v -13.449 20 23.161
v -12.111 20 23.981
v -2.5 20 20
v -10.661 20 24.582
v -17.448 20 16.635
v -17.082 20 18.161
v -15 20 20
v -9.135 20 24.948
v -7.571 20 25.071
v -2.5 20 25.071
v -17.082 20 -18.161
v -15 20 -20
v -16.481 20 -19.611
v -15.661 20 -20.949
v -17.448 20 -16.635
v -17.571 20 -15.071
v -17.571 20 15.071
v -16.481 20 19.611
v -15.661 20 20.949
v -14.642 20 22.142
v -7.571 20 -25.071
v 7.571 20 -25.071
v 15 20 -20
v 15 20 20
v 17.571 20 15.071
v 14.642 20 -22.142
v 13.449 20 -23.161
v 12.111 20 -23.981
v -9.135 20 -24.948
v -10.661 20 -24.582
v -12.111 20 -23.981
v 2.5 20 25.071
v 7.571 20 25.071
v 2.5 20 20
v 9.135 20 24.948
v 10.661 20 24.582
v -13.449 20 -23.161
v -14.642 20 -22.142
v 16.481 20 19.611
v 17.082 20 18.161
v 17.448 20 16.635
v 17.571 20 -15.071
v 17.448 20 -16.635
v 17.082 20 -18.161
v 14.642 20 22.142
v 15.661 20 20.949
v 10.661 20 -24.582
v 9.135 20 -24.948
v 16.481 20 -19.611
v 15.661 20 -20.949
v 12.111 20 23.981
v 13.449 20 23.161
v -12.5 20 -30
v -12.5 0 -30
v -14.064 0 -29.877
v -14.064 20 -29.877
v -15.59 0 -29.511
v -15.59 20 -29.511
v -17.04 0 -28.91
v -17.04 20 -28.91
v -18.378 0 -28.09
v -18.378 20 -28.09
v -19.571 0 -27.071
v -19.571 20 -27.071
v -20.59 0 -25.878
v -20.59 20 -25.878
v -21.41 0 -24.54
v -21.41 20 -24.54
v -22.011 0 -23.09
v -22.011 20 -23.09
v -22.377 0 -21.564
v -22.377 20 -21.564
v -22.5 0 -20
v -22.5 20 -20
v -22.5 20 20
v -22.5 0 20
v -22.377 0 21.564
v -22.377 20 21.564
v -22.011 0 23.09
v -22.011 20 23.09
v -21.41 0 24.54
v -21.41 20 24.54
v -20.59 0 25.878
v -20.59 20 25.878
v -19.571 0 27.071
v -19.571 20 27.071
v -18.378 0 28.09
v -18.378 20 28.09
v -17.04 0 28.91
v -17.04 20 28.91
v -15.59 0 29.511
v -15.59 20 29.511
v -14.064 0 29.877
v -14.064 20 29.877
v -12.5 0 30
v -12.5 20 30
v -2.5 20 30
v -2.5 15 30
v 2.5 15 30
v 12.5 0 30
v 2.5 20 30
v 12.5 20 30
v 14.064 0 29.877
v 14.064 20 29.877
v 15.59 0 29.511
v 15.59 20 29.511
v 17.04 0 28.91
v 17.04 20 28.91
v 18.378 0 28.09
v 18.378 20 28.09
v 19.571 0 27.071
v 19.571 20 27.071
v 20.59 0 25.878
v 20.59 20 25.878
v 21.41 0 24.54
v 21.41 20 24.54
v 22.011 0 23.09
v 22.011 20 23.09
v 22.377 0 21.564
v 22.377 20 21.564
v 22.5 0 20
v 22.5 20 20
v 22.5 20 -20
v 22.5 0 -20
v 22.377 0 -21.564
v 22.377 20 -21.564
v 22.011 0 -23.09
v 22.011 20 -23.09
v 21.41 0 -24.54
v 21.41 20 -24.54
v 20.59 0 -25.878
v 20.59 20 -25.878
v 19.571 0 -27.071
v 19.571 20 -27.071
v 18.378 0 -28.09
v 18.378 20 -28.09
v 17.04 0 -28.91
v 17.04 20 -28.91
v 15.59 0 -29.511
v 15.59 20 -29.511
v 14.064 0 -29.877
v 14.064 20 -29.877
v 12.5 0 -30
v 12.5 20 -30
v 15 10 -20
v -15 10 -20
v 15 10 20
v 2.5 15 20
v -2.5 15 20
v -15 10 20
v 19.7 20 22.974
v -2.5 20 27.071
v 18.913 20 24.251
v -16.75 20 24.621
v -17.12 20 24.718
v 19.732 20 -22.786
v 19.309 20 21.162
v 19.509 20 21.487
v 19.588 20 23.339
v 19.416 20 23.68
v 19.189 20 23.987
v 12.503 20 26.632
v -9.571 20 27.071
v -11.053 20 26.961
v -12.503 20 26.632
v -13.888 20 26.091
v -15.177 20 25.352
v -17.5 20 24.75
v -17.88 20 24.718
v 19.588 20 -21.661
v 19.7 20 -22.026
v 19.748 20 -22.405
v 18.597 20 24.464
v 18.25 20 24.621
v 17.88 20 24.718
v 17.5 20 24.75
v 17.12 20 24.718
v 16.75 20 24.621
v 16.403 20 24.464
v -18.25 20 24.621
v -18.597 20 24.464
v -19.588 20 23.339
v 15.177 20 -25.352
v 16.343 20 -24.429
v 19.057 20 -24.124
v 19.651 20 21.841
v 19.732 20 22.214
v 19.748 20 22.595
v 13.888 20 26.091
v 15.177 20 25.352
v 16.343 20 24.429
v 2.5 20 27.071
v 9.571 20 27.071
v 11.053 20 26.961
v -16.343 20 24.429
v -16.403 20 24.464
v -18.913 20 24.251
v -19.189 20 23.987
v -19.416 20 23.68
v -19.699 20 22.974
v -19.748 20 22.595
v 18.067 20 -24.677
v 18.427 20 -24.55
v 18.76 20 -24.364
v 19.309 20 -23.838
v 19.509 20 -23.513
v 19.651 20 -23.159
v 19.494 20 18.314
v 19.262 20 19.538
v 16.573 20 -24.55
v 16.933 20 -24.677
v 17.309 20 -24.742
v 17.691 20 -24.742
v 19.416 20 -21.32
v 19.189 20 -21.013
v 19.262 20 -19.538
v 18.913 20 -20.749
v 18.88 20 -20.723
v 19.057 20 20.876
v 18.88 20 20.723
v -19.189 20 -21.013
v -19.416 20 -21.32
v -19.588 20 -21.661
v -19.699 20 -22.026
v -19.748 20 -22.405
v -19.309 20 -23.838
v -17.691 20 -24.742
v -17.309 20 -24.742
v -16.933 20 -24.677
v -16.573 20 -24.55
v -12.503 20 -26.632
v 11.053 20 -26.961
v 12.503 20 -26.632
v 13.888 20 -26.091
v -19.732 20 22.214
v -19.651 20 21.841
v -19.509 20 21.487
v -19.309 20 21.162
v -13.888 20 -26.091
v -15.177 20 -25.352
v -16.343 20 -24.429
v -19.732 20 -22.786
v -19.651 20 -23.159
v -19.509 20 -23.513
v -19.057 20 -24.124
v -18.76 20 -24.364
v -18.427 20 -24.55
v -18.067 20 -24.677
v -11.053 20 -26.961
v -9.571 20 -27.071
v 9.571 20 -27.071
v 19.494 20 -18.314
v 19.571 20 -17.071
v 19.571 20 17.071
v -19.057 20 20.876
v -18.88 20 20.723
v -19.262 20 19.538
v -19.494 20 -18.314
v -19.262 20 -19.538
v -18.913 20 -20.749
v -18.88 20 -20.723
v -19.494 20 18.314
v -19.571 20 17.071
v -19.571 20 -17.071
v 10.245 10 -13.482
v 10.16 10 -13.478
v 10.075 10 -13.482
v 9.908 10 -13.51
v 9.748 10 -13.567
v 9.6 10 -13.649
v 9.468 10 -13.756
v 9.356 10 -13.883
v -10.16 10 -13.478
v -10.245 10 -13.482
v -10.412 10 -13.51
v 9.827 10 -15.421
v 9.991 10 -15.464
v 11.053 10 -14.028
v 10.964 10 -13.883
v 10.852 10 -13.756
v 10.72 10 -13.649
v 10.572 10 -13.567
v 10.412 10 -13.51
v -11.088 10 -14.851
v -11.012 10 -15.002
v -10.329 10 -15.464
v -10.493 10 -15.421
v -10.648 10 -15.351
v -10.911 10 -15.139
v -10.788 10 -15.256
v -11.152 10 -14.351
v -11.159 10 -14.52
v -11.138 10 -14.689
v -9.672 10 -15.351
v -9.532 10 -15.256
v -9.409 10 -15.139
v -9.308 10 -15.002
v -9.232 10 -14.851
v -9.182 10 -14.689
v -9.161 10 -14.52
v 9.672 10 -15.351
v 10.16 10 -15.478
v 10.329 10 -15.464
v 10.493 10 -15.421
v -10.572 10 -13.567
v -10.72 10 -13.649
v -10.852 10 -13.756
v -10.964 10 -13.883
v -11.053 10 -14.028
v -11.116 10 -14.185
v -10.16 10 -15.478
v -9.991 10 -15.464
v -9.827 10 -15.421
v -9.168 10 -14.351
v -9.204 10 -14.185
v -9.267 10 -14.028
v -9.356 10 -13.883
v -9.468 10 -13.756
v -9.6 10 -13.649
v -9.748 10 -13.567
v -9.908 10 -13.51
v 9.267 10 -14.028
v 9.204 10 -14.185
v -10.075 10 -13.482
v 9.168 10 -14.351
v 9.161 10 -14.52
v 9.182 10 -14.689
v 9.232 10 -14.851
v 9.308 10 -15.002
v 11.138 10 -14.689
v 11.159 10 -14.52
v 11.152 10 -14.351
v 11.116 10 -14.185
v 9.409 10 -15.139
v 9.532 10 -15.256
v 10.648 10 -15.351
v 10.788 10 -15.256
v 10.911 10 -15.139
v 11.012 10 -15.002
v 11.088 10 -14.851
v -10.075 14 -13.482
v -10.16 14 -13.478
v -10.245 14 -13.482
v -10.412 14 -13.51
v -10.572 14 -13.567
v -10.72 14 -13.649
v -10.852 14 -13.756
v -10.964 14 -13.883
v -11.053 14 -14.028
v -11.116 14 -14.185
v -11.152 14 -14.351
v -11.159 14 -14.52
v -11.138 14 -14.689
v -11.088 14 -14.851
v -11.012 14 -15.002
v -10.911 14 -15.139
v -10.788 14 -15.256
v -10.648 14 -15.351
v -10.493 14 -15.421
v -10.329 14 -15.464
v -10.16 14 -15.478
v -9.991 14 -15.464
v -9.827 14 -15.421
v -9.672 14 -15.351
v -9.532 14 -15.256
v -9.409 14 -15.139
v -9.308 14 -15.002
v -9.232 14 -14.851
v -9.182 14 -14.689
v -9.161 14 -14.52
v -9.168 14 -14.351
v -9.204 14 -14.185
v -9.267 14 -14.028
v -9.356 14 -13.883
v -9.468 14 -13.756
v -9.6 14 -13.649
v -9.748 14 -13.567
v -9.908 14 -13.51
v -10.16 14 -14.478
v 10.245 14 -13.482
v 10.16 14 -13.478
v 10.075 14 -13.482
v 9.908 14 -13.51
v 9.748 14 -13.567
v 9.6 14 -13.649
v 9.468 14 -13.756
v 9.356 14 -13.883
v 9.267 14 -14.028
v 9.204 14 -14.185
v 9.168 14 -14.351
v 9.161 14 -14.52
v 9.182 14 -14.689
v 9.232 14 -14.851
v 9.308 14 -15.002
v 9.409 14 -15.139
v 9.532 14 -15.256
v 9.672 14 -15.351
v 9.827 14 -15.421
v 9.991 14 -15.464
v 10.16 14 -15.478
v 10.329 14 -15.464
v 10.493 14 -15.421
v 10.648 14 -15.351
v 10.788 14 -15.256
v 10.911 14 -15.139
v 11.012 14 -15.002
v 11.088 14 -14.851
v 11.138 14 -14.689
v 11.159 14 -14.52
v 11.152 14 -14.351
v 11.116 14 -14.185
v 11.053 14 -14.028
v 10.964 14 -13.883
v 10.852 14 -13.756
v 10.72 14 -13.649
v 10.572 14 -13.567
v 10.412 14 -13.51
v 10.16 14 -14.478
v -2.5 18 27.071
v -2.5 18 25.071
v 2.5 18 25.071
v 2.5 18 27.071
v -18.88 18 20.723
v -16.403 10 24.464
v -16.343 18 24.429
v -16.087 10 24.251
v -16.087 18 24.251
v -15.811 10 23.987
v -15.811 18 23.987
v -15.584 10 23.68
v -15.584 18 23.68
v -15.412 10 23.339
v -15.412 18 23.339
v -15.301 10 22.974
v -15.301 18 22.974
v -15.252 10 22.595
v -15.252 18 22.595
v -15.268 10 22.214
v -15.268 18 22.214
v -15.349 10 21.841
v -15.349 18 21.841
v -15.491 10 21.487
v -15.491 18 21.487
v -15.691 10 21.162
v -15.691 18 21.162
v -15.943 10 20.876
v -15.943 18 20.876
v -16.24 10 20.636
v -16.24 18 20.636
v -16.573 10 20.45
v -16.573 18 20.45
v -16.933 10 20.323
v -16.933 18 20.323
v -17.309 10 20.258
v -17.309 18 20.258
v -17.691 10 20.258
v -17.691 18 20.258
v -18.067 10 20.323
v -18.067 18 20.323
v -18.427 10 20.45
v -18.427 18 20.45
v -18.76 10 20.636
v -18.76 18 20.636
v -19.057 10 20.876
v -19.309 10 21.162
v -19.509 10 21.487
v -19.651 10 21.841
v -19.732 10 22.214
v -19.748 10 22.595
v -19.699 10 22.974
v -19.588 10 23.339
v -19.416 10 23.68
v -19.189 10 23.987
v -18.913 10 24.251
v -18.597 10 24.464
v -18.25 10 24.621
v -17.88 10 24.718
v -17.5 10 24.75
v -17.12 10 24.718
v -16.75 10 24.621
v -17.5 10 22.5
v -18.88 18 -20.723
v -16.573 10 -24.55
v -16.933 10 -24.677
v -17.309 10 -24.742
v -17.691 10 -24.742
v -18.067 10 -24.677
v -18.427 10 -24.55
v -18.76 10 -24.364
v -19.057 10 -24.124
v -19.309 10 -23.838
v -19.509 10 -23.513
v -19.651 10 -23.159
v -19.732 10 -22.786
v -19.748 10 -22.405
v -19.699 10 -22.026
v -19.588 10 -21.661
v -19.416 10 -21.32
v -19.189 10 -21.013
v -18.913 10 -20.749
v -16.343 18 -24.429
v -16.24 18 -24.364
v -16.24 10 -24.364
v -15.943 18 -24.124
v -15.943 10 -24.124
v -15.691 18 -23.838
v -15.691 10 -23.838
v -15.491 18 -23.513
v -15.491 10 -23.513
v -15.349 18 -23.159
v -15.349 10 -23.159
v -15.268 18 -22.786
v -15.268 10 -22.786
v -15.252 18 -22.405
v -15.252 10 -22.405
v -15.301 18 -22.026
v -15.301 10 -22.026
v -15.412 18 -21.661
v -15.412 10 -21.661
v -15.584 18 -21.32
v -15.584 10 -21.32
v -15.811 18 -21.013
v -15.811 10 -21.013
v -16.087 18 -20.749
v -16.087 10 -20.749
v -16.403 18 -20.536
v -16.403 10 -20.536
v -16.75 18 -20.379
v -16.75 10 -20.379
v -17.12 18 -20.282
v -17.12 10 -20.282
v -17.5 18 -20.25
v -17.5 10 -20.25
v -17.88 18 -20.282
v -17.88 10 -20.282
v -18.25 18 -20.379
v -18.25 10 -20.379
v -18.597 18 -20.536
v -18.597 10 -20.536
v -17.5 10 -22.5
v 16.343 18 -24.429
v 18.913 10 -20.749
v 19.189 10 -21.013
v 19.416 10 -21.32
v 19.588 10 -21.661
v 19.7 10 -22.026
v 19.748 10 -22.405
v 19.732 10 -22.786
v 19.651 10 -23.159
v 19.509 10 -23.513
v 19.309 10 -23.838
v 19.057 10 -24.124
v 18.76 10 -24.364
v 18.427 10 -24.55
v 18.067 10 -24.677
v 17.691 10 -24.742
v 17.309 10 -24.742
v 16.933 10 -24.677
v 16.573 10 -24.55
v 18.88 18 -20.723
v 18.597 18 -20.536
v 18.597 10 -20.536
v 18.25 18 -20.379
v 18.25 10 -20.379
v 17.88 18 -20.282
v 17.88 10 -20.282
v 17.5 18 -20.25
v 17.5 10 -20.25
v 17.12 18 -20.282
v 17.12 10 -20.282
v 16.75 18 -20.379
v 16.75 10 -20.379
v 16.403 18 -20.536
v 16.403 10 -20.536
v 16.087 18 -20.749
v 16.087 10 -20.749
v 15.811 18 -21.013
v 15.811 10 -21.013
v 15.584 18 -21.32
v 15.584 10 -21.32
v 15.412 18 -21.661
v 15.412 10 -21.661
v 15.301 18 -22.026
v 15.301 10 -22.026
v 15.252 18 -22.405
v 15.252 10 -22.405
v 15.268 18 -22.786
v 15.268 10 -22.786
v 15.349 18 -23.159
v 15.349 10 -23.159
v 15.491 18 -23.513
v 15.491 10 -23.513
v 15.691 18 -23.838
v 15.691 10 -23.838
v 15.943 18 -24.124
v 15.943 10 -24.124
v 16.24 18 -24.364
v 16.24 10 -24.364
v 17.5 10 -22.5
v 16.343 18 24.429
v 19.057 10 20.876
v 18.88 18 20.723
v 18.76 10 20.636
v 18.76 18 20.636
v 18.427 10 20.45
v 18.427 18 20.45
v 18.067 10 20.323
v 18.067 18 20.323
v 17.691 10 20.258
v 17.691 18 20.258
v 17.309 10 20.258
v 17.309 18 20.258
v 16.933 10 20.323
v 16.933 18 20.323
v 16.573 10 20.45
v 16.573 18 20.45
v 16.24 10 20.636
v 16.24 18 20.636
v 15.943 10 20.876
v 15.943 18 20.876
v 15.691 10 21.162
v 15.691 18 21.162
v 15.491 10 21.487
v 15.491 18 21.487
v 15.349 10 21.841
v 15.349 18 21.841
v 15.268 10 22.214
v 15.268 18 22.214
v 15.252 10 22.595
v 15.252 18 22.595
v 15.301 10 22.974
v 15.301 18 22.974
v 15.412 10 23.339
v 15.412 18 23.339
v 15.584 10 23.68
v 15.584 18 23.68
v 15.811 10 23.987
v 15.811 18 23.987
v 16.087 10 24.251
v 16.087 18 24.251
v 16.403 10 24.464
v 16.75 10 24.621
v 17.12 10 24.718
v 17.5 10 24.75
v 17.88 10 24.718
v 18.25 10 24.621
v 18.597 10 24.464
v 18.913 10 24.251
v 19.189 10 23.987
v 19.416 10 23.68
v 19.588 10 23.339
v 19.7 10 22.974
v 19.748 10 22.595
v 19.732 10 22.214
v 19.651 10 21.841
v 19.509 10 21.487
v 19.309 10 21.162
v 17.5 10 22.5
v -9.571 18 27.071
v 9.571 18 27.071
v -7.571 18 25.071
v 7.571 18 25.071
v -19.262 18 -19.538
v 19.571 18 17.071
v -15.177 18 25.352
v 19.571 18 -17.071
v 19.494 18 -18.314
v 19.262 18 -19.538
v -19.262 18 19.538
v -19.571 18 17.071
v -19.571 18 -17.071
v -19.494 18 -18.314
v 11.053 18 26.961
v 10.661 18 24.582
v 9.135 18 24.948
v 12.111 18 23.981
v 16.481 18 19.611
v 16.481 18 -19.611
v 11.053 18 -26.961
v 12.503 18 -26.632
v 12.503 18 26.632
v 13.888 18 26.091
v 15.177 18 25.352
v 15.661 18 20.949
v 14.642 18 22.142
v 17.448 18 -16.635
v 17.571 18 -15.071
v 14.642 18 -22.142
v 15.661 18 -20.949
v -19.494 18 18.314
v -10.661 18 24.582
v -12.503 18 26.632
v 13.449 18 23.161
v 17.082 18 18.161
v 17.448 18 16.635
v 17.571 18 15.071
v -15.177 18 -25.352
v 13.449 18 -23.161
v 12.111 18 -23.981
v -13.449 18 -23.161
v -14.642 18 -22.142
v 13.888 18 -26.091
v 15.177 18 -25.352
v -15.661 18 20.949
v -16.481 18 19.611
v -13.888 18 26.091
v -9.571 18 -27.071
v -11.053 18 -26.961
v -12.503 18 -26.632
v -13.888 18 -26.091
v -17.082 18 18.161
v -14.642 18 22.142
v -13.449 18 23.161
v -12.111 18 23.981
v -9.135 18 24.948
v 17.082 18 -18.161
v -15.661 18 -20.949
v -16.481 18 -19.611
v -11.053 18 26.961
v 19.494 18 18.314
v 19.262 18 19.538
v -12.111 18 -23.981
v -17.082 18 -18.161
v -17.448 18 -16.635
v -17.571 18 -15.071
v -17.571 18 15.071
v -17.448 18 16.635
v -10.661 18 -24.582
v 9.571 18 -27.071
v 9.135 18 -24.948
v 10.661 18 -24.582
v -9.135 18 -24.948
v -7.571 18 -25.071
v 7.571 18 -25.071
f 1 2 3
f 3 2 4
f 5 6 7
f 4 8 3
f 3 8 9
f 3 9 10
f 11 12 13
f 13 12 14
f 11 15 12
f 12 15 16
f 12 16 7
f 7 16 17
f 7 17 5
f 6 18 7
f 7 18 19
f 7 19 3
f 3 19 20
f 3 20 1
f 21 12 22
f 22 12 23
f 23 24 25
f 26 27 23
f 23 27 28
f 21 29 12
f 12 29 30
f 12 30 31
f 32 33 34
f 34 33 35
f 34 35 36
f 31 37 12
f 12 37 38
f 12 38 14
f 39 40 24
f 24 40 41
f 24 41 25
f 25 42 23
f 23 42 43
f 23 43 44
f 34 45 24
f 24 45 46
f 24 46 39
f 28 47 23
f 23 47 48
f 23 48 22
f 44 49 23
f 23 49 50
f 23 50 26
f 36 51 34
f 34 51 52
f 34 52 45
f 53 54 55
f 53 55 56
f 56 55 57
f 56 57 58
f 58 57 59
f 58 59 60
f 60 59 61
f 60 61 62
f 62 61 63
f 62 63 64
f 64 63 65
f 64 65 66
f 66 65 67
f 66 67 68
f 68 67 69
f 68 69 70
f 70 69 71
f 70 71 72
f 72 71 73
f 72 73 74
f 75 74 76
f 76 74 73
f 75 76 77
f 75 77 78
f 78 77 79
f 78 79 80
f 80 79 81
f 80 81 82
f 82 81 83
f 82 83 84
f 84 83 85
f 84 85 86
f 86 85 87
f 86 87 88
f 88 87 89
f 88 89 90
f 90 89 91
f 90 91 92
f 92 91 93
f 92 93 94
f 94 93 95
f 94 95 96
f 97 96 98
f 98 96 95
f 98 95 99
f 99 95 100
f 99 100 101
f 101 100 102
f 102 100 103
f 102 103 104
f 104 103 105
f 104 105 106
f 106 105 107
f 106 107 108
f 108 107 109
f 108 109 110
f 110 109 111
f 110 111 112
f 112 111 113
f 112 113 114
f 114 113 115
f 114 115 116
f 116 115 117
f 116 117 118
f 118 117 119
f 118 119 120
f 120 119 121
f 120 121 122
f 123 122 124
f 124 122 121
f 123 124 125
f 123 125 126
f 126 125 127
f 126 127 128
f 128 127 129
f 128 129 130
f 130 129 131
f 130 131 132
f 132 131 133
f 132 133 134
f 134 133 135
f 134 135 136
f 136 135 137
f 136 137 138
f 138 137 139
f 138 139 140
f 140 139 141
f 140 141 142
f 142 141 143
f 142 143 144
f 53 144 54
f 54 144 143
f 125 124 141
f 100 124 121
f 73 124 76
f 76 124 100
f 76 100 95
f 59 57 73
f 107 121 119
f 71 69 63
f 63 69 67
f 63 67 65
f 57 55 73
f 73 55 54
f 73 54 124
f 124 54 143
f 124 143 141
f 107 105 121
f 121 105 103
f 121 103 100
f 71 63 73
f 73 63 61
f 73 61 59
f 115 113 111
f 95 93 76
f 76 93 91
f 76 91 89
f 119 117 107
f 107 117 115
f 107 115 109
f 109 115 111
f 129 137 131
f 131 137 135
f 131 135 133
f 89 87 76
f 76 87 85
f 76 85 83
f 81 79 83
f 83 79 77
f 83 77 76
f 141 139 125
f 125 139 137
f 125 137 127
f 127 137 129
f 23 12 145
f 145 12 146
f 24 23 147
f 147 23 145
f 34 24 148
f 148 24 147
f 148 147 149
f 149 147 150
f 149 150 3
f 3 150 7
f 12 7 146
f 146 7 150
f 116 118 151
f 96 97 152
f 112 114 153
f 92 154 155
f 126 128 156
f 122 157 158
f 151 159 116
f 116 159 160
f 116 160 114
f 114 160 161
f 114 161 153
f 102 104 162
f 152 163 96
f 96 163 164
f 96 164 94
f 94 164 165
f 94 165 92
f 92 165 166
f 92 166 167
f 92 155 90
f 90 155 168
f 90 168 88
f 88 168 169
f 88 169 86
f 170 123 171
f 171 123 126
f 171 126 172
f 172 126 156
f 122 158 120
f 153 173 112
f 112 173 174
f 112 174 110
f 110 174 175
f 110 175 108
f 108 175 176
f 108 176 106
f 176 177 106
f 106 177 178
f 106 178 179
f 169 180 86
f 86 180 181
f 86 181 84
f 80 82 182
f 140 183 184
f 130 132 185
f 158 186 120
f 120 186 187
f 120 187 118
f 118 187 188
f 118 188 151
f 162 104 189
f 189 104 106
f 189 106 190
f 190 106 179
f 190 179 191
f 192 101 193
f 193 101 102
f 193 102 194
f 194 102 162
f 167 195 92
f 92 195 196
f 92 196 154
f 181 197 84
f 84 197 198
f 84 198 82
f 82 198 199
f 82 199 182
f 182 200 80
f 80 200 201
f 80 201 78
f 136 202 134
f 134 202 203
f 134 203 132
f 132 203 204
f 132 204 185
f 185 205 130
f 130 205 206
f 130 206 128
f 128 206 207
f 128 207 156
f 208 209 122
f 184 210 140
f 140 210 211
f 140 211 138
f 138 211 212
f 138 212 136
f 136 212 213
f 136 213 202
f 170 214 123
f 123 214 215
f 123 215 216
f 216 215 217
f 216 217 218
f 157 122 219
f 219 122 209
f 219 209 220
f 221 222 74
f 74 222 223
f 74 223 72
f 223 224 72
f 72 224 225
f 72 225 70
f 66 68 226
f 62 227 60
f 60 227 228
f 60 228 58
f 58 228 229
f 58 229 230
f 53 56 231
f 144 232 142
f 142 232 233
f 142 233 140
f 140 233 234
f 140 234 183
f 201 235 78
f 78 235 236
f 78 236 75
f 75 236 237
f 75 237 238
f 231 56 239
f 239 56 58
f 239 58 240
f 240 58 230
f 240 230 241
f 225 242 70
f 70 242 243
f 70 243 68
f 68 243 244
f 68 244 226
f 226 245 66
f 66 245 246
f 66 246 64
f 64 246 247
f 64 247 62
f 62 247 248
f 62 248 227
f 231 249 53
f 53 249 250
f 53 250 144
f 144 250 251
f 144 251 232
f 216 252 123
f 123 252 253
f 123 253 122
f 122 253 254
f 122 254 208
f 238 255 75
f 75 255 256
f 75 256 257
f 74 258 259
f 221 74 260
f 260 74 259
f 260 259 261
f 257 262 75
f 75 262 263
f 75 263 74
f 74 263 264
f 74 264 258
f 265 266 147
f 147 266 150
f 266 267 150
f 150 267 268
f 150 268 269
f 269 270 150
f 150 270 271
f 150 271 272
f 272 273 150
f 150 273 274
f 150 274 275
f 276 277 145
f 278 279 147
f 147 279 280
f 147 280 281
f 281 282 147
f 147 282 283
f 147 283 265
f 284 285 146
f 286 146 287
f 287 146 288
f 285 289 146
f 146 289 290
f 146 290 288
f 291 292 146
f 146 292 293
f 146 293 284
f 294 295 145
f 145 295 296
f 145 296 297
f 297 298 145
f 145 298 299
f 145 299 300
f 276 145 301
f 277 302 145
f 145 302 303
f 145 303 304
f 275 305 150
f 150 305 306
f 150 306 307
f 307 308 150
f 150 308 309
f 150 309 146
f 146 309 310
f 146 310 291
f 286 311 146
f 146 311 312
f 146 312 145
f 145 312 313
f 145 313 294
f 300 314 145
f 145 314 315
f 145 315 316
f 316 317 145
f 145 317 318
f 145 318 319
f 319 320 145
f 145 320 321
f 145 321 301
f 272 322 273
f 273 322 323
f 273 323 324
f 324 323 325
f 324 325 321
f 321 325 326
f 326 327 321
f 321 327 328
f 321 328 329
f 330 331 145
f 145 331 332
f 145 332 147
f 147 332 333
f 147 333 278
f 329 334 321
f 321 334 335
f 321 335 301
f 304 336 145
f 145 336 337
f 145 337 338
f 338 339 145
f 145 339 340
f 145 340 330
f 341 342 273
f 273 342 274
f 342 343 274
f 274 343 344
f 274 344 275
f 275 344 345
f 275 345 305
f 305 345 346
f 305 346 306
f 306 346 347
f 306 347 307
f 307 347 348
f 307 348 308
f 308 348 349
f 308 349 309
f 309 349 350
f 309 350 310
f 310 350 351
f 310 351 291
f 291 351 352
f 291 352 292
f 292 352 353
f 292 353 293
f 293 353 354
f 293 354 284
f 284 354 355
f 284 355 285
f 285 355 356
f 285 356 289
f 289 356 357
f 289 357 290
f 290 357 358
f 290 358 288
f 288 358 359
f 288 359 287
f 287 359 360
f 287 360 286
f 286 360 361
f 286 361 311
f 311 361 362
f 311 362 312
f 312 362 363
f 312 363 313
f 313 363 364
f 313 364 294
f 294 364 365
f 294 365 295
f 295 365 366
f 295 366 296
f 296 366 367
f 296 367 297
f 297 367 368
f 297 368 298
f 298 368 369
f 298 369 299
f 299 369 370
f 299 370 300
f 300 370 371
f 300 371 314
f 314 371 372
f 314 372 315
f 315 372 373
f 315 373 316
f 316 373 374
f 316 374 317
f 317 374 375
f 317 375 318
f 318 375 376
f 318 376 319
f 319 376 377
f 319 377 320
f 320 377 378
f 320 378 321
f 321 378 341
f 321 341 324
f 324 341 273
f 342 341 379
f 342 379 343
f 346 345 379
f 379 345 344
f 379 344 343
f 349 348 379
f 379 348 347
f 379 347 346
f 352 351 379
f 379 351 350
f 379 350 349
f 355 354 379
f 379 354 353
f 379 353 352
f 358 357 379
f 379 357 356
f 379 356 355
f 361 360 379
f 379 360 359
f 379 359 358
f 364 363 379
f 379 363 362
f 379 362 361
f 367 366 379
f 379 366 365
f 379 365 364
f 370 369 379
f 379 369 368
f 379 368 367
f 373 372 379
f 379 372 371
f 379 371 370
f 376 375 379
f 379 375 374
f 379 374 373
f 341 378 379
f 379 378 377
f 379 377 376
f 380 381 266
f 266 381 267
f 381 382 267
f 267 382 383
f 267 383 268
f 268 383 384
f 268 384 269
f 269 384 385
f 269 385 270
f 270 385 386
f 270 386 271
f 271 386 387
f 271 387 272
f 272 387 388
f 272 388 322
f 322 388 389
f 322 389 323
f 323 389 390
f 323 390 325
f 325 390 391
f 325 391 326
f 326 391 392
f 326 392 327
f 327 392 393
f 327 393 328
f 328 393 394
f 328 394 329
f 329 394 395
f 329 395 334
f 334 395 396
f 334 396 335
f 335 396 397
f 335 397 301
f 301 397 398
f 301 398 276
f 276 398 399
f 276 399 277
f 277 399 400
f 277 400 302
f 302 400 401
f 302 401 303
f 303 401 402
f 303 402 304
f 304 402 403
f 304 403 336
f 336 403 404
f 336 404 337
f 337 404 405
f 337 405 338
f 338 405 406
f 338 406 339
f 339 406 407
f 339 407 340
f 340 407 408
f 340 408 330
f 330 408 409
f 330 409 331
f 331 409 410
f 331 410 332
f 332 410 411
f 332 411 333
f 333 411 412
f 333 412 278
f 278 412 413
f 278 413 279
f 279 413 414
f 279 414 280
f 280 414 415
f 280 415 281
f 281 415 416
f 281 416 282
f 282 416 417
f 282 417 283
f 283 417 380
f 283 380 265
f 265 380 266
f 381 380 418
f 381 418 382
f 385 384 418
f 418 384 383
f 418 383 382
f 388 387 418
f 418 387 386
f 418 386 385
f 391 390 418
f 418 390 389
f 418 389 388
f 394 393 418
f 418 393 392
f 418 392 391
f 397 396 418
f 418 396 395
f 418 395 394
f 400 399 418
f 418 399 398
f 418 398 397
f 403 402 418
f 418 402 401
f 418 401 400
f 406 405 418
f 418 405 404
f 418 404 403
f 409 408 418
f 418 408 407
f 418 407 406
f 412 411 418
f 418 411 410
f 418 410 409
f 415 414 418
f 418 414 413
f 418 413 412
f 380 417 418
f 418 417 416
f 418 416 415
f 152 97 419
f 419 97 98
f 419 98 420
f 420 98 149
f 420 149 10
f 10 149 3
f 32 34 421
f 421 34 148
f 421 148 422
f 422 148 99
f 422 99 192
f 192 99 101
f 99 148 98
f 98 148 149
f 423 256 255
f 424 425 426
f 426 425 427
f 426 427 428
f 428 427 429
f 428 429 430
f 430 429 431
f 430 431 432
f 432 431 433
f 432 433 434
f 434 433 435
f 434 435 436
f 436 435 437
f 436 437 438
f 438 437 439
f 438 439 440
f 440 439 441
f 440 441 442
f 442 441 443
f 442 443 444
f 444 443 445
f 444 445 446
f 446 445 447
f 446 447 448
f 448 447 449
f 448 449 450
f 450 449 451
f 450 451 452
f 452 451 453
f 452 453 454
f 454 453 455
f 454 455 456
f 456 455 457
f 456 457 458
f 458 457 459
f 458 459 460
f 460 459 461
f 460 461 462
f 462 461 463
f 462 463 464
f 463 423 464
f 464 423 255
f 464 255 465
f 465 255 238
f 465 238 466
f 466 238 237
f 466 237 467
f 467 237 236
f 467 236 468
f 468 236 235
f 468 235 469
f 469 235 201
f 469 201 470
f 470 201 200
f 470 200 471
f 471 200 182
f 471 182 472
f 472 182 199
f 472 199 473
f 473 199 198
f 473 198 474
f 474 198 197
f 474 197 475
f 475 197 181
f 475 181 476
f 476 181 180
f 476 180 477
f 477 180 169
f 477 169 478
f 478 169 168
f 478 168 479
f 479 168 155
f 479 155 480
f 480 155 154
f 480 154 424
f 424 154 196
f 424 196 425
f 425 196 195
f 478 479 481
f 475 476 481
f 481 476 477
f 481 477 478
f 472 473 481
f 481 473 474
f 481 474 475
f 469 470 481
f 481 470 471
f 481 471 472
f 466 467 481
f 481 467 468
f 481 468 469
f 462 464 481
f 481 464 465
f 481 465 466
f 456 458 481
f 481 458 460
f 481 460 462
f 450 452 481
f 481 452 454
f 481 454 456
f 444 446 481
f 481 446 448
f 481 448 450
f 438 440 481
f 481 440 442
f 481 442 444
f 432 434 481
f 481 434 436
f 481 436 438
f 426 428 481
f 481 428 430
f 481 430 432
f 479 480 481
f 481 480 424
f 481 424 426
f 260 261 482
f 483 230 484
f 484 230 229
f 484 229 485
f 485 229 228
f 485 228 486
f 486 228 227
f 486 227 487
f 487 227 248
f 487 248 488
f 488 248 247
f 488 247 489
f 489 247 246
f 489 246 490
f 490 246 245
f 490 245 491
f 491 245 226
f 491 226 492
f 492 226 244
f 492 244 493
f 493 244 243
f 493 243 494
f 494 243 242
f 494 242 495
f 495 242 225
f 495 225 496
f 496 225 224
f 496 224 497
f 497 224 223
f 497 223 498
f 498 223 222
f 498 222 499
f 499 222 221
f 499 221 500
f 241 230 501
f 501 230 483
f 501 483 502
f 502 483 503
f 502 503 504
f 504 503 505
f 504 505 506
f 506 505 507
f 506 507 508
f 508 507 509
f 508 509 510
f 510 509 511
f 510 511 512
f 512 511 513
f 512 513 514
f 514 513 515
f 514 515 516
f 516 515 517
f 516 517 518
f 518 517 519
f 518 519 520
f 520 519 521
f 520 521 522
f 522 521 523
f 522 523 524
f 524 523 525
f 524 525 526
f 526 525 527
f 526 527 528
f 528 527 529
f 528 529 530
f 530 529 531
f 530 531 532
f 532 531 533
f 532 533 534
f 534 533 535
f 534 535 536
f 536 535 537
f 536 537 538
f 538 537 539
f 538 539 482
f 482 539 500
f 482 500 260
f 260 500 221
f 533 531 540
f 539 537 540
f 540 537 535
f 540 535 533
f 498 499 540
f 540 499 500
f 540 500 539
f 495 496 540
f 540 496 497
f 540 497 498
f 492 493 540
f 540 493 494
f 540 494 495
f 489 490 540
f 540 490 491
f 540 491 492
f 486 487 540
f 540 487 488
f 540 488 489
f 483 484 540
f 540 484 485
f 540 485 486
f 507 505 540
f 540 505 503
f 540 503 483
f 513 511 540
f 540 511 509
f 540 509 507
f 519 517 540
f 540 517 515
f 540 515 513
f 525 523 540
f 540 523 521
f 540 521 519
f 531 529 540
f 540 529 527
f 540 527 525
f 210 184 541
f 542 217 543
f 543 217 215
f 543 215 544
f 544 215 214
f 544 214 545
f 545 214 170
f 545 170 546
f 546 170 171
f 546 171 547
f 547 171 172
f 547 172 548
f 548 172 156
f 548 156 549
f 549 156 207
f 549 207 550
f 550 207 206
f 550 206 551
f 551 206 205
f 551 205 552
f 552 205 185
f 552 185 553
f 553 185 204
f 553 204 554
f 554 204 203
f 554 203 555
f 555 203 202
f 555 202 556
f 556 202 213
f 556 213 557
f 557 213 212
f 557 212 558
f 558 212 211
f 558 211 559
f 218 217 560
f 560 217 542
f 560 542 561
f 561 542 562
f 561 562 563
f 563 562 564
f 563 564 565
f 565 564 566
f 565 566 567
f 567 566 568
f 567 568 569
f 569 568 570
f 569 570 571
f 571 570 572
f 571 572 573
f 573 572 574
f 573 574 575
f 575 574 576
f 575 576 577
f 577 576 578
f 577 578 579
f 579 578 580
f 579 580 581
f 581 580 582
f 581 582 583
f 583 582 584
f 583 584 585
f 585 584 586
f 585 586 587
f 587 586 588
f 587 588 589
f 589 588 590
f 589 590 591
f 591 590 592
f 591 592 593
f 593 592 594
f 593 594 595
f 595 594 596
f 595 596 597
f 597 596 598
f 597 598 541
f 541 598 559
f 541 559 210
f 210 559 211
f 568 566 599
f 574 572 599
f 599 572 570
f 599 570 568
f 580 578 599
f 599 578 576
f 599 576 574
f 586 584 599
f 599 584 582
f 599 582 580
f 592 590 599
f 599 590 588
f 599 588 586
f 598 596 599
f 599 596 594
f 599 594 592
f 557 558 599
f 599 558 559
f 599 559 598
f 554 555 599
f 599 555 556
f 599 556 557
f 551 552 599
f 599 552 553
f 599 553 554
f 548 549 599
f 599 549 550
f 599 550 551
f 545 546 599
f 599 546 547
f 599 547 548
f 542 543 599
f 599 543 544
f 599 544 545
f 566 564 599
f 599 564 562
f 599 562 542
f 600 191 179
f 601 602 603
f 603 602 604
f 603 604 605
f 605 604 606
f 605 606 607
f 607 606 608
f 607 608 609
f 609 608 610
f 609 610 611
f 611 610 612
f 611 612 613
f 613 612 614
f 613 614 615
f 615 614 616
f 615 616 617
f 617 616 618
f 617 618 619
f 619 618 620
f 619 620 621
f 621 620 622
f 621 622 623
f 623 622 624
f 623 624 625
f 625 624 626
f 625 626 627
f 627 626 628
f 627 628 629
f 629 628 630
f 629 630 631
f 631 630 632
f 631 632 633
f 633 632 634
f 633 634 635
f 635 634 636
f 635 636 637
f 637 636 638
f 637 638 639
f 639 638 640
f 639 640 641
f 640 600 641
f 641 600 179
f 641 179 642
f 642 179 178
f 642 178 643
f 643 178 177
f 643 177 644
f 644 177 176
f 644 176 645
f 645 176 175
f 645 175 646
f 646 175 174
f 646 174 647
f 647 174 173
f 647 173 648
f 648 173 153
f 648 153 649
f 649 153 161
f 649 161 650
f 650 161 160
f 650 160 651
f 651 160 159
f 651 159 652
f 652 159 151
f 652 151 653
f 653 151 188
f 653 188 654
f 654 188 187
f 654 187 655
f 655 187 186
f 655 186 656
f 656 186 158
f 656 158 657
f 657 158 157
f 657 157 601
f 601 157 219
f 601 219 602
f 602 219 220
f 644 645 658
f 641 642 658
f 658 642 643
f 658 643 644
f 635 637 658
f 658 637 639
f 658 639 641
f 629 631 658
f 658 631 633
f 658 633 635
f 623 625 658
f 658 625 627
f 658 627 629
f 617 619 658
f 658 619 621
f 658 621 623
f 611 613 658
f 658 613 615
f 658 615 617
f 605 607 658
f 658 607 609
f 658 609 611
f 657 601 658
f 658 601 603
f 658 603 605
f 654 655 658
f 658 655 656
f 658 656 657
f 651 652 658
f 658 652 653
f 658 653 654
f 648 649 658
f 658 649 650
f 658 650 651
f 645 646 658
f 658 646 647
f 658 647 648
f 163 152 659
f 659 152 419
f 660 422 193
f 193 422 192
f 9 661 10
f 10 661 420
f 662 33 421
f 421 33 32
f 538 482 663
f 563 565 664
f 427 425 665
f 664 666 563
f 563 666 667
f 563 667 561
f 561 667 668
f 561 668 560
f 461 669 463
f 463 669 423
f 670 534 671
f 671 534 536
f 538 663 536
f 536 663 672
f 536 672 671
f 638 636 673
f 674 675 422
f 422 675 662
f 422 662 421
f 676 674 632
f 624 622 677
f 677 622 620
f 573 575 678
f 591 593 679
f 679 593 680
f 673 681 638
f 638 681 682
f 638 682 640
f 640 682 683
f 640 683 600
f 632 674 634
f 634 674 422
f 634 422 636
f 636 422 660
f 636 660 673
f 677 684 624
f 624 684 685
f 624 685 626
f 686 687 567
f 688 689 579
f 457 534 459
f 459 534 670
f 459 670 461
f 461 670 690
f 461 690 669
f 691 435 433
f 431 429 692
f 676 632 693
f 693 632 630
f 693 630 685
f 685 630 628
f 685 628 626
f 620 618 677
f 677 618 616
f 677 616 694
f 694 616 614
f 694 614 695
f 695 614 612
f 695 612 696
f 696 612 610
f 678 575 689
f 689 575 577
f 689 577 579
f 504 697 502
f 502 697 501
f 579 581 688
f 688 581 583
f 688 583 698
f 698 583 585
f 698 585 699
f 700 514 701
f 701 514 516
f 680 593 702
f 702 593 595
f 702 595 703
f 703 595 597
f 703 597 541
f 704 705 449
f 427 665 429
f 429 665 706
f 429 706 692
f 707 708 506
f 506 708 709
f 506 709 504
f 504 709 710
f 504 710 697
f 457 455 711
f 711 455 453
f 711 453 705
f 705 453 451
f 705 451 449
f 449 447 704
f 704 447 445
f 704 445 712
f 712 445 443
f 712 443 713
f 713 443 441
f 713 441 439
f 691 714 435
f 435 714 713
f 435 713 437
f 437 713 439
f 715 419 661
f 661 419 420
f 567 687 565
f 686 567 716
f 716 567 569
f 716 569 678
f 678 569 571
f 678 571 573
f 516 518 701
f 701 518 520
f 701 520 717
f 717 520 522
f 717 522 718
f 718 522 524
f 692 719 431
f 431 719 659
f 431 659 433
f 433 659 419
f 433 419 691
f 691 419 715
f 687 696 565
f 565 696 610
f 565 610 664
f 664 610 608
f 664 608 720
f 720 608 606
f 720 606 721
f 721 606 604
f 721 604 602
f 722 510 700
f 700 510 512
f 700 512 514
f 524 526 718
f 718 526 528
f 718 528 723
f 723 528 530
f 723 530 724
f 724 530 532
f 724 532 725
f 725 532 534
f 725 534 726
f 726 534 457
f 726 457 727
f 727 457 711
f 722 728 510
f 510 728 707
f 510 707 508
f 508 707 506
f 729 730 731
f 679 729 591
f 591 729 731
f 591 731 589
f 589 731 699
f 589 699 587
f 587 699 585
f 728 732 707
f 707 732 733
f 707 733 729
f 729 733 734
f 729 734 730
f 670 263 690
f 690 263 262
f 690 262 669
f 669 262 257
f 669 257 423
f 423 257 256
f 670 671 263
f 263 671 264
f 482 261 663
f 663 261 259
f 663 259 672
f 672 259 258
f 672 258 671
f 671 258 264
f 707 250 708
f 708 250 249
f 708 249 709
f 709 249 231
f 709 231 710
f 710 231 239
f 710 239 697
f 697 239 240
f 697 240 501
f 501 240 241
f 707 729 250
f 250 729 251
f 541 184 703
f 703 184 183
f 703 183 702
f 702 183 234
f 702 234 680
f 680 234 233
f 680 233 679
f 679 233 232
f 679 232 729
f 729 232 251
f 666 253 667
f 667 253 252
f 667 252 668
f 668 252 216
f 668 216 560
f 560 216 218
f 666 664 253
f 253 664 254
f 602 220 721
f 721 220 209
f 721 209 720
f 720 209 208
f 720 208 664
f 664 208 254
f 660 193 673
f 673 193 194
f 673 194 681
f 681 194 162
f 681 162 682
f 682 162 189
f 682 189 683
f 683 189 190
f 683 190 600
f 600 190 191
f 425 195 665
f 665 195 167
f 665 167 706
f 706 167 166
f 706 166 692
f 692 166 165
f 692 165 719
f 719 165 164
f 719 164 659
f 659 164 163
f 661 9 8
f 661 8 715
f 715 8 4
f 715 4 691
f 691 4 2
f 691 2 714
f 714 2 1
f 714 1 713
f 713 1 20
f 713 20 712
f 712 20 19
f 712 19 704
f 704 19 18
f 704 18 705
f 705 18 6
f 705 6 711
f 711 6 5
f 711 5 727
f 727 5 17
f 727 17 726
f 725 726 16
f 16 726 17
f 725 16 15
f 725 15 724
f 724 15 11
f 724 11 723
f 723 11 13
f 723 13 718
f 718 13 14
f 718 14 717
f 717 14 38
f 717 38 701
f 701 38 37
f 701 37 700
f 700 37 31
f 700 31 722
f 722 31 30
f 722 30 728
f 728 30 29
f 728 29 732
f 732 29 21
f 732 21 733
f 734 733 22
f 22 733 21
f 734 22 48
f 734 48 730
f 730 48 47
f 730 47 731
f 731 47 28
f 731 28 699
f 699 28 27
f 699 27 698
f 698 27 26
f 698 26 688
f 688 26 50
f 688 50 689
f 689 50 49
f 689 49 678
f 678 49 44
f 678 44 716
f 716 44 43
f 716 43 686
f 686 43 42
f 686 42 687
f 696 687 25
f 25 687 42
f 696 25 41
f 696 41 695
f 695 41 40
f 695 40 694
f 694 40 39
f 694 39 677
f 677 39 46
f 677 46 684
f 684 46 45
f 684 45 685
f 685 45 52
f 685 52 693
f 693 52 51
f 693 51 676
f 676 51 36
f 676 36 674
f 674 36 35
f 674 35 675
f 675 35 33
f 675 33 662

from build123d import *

# Parameters (mm, degrees)
BOSS_EXTRU_1_DEPTH      = 10
ESQUISSE2_W             = 30
ESQUISSE2_H             = 40
BOSS_EXTRU_2_DEPTH      = 10
ESQUISSE3_R             = 1
BOSS_EXTRU_3_DEPTH      = 4
ESQUISSE4_W             = 5
ESQUISSE4_H             = 10
ENL_V_MAT_EXTRU_1_DEPTH = 5
ESQUISSE5_R             = 2.25
ENL_V_MAT_EXTRU_2_DEPTH = 10
CUT_EXTRUDE1_DEPTH      = 2


with BuildPart() as part:
    # Esquisse1 → Boss.-Extru.1 (new body)
    with BuildSketch(Plane(origin=(0, 0, 0), x_dir=(1, 0, 0), z_dir=(0, 1, 0))):
        with BuildLine():
            Line((-12.5, 30), (12.5, 30))
            ThreePointArc((12.5, 30), (19.571067812, 27.071067812), (22.5, 20))
            Line((22.5, 20), (22.5, -20))
            ThreePointArc((22.5, -20), (19.571067812, -27.071067812), (12.5, -30))
            Line((12.5, -30), (-12.5, -30))
            ThreePointArc((-12.5, -30), (-19.571067812, -27.071067812), (-22.5, -20))
            Line((-22.5, -20), (-22.5, 20))
            ThreePointArc((-22.5, 20), (-19.571067812, 27.071067812), (-12.5, 30))
        make_face()
    extrude(amount=BOSS_EXTRU_1_DEPTH)

    # Esquisse2 → Boss.-Extru.2 (add)
    with BuildSketch(Plane(origin=(0, 10, 0), x_dir=(1, 0, 0), z_dir=(0, 1, 0))):
        with BuildLine():
            ThreePointArc((22.5, 20), (19.571067812, 27.071067812), (12.5, 30))
            Line((12.5, 30), (-12.5, 30))
            ThreePointArc((-12.5, 30), (-19.571067812, 27.071067812), (-22.5, 20))
            Line((-22.5, 20), (-22.5, -20))
            ThreePointArc((-22.5, -20), (-19.571067812, -27.071067812), (-12.5, -30))
            Line((-12.5, -30), (12.5, -30))
            ThreePointArc((12.5, -30), (19.571067812, -27.071067812), (22.5, -20))
            Line((22.5, -20), (22.5, 20))
        make_face()
        Rectangle(ESQUISSE2_W, ESQUISSE2_H, mode=Mode.SUBTRACT)
    extrude(amount=BOSS_EXTRU_2_DEPTH)

    # Esquisse3 → Boss.-Extru.3 (add)
    with BuildSketch(Plane(origin=(0, 10, 0), x_dir=(1, 0, 0), z_dir=(0, 1, 0))):
        with Locations(Location((-10.16, 14.478, 0), (0, 0, 270))):
            Circle(ESQUISSE3_R)
        with Locations(Location((10.16, 14.478, 0), (0, 0, 270))):
            Circle(ESQUISSE3_R)
    extrude(amount=BOSS_EXTRU_3_DEPTH)

    # Esquisse4 → Enlèv. mat.-Extru.1 (cut)
    with BuildSketch(Plane(origin=(0, 20, 0), x_dir=(1, 0, 0), z_dir=(0, 1, 0))):
        with Locations((0, -25)):
            Rectangle(ESQUISSE4_W, ESQUISSE4_H)
    extrude(amount=-ENL_V_MAT_EXTRU_1_DEPTH, mode=Mode.SUBTRACT)

    # Esquisse5 → Enlèv. mat.-Extru.2 (cut)
    with BuildSketch(Plane(origin=(0, 20, 0), x_dir=(1, 0, 0), z_dir=(0, 1, 0))):
        with Locations(Location((-17.5, -22.5, 0), (0, 0, 270))):
            Circle(ESQUISSE5_R)
        with Locations(Location((17.5, -22.5, 0), (0, 0, 270))):
            Circle(ESQUISSE5_R)
        with Locations(Location((17.5, 22.5, 0), (0, 0, 270))):
            Circle(ESQUISSE5_R)
        with Locations(Location((-17.5, 22.5, 0), (0, 0, 270))):
            Circle(ESQUISSE5_R)
    extrude(amount=-ENL_V_MAT_EXTRU_2_DEPTH, mode=Mode.SUBTRACT)

    # Sketch1 → Cut-Extrude1 (cut)
    with BuildSketch(Plane(origin=(0, 20, 0), x_dir=(1, 0, 0), z_dir=(0, 1, 0))):
        with BuildLine():
            Line((-9.571067812, 27.071067812), (9.571067812, 27.071067812))
            ThreePointArc((9.571067812, 27.071067812), (13.20533493, 26.387295724), (16.342599965, 24.429488315))
            ThreePointArc((16.342599965, 24.429488315), (15.643481423, 21.228843529), (18.880326672, 20.723149337))
            ThreePointArc((18.880326672, 20.723149337), (19.396865199, 18.929482646), (19.571067812, 17.071067812))
            Line((19.571067812, 17.071067812), (19.571067812, -17.071067812))
            ThreePointArc((19.571067812, -17.071067812), (19.396865199, -18.929482646), (18.880326672, -20.723149337))
            ThreePointArc((18.880326672, -20.723149337), (15.643481423, -21.228843529), (16.342599965, -24.429488315))
            ThreePointArc((16.342599965, -24.429488315), (13.20533493, -26.387295724), (9.571067812, -27.071067812))
            Line((9.571067812, -27.071067812), (-9.571067812, -27.071067812))
            ThreePointArc((-9.571067812, -27.071067812), (-13.20533493, -26.387295724), (-16.342599965, -24.429488315))
            ThreePointArc((-16.342599965, -24.429488315), (-15.643481423, -21.228843529), (-18.880326672, -20.723149337))
            ThreePointArc((-18.880326672, -20.723149337), (-19.396865199, -18.929482646), (-19.571067812, -17.071067812))
            Line((-19.571067812, -17.071067812), (-19.571067812, 17.071067812))
            ThreePointArc((-19.571067812, 17.071067812), (-19.396865199, 18.929482646), (-18.880326672, 20.723149337))
            ThreePointArc((-18.880326672, 20.723149337), (-15.643481423, 21.228843529), (-16.342599965, 24.429488315))
            ThreePointArc((-16.342599965, 24.429488315), (-13.20533493, 26.387295724), (-9.571067812, 27.071067812))
        make_face()
        with BuildLine():
            Line((-7.571067812, 25.071067812), (7.571067812, 25.071067812))
            ThreePointArc((7.571067812, 25.071067812), (14.642135624, 22.142135624), (17.571067812, 15.071067812))
            Line((17.571067812, 15.071067812), (17.571067812, -15.071067812))
            ThreePointArc((17.571067812, -15.071067812), (14.642135624, -22.142135624), (7.571067812, -25.071067812))
            Line((7.571067812, -25.071067812), (-7.571067812, -25.071067812))
            ThreePointArc((-7.571067812, -25.071067812), (-14.642135624, -22.142135624), (-17.571067812, -15.071067812))
            Line((-17.571067812, -15.071067812), (-17.571067812, 15.071067812))
            ThreePointArc((-17.571067812, 15.071067812), (-14.642135624, 22.142135624), (-7.571067812, 25.071067812))
        make_face(mode=Mode.SUBTRACT)
    extrude(amount=-CUT_EXTRUDE1_DEPTH, mode=Mode.SUBTRACT)


solid = part.part
